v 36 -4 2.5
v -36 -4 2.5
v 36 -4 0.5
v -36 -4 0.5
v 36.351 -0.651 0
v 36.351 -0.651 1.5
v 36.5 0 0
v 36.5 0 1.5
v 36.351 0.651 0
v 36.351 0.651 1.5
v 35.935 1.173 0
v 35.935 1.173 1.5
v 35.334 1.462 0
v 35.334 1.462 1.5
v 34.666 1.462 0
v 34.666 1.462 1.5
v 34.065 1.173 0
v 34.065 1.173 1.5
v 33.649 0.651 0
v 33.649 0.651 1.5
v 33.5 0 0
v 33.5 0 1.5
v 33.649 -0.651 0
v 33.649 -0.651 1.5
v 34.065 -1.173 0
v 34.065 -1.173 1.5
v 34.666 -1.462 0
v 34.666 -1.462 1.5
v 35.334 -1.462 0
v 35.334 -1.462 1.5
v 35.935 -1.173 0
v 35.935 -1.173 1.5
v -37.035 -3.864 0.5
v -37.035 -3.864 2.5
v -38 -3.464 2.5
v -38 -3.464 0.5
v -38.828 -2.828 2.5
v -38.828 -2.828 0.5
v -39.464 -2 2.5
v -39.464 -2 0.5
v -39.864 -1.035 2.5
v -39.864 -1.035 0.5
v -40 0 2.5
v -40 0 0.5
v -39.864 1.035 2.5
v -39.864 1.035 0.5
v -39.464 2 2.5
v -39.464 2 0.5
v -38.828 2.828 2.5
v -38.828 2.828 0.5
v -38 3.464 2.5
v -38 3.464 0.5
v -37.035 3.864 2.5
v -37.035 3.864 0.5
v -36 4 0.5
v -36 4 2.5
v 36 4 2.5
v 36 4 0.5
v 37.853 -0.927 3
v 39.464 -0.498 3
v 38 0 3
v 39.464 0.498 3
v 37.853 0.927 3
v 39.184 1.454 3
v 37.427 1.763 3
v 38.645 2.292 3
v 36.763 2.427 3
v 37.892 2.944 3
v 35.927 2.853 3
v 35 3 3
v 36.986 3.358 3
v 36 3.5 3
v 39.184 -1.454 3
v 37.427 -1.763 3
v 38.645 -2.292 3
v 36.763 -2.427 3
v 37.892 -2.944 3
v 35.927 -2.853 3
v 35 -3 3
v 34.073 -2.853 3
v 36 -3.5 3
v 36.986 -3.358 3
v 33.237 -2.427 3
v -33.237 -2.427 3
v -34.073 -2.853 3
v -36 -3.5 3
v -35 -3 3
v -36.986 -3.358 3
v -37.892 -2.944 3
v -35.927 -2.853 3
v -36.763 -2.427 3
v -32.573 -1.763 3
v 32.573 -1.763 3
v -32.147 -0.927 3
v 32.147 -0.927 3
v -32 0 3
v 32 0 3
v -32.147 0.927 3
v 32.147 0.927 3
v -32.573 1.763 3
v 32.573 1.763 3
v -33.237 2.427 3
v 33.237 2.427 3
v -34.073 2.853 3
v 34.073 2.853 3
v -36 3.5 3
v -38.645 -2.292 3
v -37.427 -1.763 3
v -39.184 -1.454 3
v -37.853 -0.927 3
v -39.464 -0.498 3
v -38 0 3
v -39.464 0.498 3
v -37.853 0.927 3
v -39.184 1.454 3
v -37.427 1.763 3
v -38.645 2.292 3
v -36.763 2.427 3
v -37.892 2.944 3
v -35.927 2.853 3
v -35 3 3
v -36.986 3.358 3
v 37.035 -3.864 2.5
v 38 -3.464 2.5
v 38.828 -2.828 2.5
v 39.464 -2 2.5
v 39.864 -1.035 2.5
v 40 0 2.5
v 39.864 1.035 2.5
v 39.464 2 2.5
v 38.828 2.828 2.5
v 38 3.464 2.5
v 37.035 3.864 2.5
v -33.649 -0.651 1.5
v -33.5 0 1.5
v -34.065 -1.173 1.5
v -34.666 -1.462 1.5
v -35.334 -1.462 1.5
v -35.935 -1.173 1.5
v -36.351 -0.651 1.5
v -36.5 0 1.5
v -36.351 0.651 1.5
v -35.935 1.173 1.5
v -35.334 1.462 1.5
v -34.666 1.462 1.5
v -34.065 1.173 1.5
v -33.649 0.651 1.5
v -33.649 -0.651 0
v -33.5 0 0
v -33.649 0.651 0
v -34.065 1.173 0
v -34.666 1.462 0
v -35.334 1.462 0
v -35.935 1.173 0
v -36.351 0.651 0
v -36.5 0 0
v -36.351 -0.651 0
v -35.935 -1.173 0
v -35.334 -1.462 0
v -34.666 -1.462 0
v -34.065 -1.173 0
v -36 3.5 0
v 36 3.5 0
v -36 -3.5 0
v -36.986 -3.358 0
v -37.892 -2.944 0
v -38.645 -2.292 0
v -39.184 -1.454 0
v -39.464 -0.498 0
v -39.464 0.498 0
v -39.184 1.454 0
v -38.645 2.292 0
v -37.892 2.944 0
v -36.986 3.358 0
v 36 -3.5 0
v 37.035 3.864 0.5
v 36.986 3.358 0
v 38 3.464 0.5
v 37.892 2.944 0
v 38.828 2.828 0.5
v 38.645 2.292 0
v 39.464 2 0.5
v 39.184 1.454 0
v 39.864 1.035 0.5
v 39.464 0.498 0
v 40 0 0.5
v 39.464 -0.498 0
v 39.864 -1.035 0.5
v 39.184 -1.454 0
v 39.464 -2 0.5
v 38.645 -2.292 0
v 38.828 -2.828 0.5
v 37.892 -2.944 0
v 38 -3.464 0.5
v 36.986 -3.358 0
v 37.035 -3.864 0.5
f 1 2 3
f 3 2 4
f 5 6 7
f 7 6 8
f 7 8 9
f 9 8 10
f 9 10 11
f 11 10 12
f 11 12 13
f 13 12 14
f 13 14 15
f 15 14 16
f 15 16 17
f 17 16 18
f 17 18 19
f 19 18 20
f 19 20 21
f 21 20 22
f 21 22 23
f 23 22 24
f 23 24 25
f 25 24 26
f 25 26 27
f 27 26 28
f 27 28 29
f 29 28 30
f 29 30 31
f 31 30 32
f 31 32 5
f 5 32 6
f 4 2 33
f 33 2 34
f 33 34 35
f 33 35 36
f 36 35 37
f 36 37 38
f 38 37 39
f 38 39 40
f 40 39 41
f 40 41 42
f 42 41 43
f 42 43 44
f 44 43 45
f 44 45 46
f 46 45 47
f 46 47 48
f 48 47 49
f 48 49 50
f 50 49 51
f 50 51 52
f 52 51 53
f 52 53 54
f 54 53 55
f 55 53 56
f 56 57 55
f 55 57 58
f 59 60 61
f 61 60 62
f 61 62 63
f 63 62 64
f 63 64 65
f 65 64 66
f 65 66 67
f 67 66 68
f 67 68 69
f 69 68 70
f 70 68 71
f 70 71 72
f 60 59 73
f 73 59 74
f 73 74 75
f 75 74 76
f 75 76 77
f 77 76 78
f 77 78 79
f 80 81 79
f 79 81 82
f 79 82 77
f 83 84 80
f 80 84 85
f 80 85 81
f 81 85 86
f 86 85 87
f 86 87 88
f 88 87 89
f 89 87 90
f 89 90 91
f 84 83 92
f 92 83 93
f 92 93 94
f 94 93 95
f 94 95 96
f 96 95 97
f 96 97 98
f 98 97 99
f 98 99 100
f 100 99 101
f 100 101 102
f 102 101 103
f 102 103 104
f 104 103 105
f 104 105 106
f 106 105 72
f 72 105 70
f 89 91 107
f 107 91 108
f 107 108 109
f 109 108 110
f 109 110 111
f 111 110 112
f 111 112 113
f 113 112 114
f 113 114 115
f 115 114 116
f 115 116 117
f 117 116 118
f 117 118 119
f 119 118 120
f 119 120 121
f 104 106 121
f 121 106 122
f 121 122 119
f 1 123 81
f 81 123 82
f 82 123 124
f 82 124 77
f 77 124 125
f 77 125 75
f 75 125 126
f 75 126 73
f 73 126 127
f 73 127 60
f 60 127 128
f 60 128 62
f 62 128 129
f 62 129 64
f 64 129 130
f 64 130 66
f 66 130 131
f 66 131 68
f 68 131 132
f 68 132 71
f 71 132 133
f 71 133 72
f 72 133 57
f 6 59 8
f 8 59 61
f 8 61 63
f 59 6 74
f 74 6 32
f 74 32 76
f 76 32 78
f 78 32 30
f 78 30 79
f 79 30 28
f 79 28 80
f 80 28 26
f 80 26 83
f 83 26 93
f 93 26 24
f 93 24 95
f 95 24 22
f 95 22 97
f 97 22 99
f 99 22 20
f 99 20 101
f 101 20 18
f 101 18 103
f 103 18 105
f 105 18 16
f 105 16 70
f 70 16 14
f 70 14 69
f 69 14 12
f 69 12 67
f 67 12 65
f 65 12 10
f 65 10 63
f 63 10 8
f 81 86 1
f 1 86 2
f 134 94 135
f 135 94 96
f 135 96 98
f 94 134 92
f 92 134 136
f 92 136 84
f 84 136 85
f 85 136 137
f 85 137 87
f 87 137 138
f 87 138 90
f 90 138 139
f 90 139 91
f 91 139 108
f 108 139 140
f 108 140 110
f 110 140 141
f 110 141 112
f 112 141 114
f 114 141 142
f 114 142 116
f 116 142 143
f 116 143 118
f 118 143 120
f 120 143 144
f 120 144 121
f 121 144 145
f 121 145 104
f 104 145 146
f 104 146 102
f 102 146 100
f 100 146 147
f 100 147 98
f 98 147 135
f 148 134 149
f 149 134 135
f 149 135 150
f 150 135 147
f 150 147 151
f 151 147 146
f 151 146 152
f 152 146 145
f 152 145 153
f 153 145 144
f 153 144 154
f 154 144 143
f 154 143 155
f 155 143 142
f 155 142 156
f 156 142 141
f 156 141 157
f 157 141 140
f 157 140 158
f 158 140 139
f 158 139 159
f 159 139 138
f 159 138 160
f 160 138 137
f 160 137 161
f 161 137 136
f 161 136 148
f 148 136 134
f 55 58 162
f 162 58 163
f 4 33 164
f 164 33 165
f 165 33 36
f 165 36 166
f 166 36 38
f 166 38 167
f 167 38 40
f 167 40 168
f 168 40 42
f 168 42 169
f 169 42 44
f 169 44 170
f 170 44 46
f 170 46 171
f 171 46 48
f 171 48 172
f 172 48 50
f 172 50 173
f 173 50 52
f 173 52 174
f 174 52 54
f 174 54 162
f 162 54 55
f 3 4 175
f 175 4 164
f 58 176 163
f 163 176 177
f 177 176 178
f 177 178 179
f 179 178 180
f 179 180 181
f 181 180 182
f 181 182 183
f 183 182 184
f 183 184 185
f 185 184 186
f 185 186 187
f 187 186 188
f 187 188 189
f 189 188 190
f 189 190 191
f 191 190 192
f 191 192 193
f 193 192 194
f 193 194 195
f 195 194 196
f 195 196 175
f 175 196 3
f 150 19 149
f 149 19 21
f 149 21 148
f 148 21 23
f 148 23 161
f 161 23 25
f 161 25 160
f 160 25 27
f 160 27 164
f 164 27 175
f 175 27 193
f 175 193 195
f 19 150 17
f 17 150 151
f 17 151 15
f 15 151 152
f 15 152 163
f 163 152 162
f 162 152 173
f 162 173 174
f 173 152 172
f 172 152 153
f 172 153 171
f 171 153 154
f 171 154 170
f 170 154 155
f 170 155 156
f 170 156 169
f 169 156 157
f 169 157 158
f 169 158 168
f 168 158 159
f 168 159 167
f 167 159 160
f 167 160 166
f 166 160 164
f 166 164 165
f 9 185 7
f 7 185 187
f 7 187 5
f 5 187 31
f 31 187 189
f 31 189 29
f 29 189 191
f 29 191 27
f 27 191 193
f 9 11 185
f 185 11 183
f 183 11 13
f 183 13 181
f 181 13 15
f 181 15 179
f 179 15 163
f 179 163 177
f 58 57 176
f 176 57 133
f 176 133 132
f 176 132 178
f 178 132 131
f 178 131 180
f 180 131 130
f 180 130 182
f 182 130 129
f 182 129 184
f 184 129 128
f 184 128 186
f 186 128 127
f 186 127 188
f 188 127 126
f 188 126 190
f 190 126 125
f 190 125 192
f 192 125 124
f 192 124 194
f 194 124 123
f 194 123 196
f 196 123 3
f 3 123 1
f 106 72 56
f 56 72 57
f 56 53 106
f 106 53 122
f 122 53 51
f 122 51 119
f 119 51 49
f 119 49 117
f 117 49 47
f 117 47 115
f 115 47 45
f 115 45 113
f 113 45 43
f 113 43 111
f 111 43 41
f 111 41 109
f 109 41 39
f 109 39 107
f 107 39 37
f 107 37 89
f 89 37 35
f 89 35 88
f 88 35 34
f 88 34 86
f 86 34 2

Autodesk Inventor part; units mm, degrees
ref_plane "YZ Plane" through (0, 0, 0) normal (1, 0, 0) x (0, 1, 0)
ref_plane "XZ Plane" through (0, 0, 0) normal (0, 1, 0) x (-1, 0, 0)
ref_plane "XY Plane" through (0, 0, 0) normal (0, 0, 1) x (1, 0, 0)
sketch "Sketch1" plane through (0, 0, 0) normal (0, 0, 1) x (1, 0, 0)
  line L0 (-40, 4) -> (40, 4)
  line L1 (40, 4) -> (40, -4)
  line L2 (40, -4) -> (-40, -4)
  line L3 (-40, -4) -> (-40, 4)
  line L4 (-40, 4) -> (40, -4) construction
  line L5 (40, 4) -> (-40, -4) construction
  line L6 (0, 0) -> (0, 15.184) construction
  circle A0 centre (-35, 0) radius 1.5
  circle A1 centre (35, 0) radius 1.5
  dimension "d0" = 3
  dimension "d1" = 70
  dimension "d2" = 80
  dimension "d3" = 8
extrude "Extrusion1" add sketch "Sketch1" along normal blind 3
chamfer "Chamfer1" distance 1.5 angle 45 2 edges at (-36.5, 0, 3) (33.5, 0, 3)
fillet "Fillet1" radius 4 4 edges at (-40, 4, 1.5) (-40, -4, 1.5) (40, 4, 1.5) (40, -4, 1.5)
chamfer "Chamfer2" distance 0.5 angle 45 8 edges at (0, 4, 0) (-38.8286, 2.8286, 0) (0, -4, 0) (38.8286, 2.8286, 0) (0, 4, 3) (-38.8286, 2.8286, 3) (0, -4, 3) (38.8286, 2.8286, 3)
properties part number "HoldingPlate"
